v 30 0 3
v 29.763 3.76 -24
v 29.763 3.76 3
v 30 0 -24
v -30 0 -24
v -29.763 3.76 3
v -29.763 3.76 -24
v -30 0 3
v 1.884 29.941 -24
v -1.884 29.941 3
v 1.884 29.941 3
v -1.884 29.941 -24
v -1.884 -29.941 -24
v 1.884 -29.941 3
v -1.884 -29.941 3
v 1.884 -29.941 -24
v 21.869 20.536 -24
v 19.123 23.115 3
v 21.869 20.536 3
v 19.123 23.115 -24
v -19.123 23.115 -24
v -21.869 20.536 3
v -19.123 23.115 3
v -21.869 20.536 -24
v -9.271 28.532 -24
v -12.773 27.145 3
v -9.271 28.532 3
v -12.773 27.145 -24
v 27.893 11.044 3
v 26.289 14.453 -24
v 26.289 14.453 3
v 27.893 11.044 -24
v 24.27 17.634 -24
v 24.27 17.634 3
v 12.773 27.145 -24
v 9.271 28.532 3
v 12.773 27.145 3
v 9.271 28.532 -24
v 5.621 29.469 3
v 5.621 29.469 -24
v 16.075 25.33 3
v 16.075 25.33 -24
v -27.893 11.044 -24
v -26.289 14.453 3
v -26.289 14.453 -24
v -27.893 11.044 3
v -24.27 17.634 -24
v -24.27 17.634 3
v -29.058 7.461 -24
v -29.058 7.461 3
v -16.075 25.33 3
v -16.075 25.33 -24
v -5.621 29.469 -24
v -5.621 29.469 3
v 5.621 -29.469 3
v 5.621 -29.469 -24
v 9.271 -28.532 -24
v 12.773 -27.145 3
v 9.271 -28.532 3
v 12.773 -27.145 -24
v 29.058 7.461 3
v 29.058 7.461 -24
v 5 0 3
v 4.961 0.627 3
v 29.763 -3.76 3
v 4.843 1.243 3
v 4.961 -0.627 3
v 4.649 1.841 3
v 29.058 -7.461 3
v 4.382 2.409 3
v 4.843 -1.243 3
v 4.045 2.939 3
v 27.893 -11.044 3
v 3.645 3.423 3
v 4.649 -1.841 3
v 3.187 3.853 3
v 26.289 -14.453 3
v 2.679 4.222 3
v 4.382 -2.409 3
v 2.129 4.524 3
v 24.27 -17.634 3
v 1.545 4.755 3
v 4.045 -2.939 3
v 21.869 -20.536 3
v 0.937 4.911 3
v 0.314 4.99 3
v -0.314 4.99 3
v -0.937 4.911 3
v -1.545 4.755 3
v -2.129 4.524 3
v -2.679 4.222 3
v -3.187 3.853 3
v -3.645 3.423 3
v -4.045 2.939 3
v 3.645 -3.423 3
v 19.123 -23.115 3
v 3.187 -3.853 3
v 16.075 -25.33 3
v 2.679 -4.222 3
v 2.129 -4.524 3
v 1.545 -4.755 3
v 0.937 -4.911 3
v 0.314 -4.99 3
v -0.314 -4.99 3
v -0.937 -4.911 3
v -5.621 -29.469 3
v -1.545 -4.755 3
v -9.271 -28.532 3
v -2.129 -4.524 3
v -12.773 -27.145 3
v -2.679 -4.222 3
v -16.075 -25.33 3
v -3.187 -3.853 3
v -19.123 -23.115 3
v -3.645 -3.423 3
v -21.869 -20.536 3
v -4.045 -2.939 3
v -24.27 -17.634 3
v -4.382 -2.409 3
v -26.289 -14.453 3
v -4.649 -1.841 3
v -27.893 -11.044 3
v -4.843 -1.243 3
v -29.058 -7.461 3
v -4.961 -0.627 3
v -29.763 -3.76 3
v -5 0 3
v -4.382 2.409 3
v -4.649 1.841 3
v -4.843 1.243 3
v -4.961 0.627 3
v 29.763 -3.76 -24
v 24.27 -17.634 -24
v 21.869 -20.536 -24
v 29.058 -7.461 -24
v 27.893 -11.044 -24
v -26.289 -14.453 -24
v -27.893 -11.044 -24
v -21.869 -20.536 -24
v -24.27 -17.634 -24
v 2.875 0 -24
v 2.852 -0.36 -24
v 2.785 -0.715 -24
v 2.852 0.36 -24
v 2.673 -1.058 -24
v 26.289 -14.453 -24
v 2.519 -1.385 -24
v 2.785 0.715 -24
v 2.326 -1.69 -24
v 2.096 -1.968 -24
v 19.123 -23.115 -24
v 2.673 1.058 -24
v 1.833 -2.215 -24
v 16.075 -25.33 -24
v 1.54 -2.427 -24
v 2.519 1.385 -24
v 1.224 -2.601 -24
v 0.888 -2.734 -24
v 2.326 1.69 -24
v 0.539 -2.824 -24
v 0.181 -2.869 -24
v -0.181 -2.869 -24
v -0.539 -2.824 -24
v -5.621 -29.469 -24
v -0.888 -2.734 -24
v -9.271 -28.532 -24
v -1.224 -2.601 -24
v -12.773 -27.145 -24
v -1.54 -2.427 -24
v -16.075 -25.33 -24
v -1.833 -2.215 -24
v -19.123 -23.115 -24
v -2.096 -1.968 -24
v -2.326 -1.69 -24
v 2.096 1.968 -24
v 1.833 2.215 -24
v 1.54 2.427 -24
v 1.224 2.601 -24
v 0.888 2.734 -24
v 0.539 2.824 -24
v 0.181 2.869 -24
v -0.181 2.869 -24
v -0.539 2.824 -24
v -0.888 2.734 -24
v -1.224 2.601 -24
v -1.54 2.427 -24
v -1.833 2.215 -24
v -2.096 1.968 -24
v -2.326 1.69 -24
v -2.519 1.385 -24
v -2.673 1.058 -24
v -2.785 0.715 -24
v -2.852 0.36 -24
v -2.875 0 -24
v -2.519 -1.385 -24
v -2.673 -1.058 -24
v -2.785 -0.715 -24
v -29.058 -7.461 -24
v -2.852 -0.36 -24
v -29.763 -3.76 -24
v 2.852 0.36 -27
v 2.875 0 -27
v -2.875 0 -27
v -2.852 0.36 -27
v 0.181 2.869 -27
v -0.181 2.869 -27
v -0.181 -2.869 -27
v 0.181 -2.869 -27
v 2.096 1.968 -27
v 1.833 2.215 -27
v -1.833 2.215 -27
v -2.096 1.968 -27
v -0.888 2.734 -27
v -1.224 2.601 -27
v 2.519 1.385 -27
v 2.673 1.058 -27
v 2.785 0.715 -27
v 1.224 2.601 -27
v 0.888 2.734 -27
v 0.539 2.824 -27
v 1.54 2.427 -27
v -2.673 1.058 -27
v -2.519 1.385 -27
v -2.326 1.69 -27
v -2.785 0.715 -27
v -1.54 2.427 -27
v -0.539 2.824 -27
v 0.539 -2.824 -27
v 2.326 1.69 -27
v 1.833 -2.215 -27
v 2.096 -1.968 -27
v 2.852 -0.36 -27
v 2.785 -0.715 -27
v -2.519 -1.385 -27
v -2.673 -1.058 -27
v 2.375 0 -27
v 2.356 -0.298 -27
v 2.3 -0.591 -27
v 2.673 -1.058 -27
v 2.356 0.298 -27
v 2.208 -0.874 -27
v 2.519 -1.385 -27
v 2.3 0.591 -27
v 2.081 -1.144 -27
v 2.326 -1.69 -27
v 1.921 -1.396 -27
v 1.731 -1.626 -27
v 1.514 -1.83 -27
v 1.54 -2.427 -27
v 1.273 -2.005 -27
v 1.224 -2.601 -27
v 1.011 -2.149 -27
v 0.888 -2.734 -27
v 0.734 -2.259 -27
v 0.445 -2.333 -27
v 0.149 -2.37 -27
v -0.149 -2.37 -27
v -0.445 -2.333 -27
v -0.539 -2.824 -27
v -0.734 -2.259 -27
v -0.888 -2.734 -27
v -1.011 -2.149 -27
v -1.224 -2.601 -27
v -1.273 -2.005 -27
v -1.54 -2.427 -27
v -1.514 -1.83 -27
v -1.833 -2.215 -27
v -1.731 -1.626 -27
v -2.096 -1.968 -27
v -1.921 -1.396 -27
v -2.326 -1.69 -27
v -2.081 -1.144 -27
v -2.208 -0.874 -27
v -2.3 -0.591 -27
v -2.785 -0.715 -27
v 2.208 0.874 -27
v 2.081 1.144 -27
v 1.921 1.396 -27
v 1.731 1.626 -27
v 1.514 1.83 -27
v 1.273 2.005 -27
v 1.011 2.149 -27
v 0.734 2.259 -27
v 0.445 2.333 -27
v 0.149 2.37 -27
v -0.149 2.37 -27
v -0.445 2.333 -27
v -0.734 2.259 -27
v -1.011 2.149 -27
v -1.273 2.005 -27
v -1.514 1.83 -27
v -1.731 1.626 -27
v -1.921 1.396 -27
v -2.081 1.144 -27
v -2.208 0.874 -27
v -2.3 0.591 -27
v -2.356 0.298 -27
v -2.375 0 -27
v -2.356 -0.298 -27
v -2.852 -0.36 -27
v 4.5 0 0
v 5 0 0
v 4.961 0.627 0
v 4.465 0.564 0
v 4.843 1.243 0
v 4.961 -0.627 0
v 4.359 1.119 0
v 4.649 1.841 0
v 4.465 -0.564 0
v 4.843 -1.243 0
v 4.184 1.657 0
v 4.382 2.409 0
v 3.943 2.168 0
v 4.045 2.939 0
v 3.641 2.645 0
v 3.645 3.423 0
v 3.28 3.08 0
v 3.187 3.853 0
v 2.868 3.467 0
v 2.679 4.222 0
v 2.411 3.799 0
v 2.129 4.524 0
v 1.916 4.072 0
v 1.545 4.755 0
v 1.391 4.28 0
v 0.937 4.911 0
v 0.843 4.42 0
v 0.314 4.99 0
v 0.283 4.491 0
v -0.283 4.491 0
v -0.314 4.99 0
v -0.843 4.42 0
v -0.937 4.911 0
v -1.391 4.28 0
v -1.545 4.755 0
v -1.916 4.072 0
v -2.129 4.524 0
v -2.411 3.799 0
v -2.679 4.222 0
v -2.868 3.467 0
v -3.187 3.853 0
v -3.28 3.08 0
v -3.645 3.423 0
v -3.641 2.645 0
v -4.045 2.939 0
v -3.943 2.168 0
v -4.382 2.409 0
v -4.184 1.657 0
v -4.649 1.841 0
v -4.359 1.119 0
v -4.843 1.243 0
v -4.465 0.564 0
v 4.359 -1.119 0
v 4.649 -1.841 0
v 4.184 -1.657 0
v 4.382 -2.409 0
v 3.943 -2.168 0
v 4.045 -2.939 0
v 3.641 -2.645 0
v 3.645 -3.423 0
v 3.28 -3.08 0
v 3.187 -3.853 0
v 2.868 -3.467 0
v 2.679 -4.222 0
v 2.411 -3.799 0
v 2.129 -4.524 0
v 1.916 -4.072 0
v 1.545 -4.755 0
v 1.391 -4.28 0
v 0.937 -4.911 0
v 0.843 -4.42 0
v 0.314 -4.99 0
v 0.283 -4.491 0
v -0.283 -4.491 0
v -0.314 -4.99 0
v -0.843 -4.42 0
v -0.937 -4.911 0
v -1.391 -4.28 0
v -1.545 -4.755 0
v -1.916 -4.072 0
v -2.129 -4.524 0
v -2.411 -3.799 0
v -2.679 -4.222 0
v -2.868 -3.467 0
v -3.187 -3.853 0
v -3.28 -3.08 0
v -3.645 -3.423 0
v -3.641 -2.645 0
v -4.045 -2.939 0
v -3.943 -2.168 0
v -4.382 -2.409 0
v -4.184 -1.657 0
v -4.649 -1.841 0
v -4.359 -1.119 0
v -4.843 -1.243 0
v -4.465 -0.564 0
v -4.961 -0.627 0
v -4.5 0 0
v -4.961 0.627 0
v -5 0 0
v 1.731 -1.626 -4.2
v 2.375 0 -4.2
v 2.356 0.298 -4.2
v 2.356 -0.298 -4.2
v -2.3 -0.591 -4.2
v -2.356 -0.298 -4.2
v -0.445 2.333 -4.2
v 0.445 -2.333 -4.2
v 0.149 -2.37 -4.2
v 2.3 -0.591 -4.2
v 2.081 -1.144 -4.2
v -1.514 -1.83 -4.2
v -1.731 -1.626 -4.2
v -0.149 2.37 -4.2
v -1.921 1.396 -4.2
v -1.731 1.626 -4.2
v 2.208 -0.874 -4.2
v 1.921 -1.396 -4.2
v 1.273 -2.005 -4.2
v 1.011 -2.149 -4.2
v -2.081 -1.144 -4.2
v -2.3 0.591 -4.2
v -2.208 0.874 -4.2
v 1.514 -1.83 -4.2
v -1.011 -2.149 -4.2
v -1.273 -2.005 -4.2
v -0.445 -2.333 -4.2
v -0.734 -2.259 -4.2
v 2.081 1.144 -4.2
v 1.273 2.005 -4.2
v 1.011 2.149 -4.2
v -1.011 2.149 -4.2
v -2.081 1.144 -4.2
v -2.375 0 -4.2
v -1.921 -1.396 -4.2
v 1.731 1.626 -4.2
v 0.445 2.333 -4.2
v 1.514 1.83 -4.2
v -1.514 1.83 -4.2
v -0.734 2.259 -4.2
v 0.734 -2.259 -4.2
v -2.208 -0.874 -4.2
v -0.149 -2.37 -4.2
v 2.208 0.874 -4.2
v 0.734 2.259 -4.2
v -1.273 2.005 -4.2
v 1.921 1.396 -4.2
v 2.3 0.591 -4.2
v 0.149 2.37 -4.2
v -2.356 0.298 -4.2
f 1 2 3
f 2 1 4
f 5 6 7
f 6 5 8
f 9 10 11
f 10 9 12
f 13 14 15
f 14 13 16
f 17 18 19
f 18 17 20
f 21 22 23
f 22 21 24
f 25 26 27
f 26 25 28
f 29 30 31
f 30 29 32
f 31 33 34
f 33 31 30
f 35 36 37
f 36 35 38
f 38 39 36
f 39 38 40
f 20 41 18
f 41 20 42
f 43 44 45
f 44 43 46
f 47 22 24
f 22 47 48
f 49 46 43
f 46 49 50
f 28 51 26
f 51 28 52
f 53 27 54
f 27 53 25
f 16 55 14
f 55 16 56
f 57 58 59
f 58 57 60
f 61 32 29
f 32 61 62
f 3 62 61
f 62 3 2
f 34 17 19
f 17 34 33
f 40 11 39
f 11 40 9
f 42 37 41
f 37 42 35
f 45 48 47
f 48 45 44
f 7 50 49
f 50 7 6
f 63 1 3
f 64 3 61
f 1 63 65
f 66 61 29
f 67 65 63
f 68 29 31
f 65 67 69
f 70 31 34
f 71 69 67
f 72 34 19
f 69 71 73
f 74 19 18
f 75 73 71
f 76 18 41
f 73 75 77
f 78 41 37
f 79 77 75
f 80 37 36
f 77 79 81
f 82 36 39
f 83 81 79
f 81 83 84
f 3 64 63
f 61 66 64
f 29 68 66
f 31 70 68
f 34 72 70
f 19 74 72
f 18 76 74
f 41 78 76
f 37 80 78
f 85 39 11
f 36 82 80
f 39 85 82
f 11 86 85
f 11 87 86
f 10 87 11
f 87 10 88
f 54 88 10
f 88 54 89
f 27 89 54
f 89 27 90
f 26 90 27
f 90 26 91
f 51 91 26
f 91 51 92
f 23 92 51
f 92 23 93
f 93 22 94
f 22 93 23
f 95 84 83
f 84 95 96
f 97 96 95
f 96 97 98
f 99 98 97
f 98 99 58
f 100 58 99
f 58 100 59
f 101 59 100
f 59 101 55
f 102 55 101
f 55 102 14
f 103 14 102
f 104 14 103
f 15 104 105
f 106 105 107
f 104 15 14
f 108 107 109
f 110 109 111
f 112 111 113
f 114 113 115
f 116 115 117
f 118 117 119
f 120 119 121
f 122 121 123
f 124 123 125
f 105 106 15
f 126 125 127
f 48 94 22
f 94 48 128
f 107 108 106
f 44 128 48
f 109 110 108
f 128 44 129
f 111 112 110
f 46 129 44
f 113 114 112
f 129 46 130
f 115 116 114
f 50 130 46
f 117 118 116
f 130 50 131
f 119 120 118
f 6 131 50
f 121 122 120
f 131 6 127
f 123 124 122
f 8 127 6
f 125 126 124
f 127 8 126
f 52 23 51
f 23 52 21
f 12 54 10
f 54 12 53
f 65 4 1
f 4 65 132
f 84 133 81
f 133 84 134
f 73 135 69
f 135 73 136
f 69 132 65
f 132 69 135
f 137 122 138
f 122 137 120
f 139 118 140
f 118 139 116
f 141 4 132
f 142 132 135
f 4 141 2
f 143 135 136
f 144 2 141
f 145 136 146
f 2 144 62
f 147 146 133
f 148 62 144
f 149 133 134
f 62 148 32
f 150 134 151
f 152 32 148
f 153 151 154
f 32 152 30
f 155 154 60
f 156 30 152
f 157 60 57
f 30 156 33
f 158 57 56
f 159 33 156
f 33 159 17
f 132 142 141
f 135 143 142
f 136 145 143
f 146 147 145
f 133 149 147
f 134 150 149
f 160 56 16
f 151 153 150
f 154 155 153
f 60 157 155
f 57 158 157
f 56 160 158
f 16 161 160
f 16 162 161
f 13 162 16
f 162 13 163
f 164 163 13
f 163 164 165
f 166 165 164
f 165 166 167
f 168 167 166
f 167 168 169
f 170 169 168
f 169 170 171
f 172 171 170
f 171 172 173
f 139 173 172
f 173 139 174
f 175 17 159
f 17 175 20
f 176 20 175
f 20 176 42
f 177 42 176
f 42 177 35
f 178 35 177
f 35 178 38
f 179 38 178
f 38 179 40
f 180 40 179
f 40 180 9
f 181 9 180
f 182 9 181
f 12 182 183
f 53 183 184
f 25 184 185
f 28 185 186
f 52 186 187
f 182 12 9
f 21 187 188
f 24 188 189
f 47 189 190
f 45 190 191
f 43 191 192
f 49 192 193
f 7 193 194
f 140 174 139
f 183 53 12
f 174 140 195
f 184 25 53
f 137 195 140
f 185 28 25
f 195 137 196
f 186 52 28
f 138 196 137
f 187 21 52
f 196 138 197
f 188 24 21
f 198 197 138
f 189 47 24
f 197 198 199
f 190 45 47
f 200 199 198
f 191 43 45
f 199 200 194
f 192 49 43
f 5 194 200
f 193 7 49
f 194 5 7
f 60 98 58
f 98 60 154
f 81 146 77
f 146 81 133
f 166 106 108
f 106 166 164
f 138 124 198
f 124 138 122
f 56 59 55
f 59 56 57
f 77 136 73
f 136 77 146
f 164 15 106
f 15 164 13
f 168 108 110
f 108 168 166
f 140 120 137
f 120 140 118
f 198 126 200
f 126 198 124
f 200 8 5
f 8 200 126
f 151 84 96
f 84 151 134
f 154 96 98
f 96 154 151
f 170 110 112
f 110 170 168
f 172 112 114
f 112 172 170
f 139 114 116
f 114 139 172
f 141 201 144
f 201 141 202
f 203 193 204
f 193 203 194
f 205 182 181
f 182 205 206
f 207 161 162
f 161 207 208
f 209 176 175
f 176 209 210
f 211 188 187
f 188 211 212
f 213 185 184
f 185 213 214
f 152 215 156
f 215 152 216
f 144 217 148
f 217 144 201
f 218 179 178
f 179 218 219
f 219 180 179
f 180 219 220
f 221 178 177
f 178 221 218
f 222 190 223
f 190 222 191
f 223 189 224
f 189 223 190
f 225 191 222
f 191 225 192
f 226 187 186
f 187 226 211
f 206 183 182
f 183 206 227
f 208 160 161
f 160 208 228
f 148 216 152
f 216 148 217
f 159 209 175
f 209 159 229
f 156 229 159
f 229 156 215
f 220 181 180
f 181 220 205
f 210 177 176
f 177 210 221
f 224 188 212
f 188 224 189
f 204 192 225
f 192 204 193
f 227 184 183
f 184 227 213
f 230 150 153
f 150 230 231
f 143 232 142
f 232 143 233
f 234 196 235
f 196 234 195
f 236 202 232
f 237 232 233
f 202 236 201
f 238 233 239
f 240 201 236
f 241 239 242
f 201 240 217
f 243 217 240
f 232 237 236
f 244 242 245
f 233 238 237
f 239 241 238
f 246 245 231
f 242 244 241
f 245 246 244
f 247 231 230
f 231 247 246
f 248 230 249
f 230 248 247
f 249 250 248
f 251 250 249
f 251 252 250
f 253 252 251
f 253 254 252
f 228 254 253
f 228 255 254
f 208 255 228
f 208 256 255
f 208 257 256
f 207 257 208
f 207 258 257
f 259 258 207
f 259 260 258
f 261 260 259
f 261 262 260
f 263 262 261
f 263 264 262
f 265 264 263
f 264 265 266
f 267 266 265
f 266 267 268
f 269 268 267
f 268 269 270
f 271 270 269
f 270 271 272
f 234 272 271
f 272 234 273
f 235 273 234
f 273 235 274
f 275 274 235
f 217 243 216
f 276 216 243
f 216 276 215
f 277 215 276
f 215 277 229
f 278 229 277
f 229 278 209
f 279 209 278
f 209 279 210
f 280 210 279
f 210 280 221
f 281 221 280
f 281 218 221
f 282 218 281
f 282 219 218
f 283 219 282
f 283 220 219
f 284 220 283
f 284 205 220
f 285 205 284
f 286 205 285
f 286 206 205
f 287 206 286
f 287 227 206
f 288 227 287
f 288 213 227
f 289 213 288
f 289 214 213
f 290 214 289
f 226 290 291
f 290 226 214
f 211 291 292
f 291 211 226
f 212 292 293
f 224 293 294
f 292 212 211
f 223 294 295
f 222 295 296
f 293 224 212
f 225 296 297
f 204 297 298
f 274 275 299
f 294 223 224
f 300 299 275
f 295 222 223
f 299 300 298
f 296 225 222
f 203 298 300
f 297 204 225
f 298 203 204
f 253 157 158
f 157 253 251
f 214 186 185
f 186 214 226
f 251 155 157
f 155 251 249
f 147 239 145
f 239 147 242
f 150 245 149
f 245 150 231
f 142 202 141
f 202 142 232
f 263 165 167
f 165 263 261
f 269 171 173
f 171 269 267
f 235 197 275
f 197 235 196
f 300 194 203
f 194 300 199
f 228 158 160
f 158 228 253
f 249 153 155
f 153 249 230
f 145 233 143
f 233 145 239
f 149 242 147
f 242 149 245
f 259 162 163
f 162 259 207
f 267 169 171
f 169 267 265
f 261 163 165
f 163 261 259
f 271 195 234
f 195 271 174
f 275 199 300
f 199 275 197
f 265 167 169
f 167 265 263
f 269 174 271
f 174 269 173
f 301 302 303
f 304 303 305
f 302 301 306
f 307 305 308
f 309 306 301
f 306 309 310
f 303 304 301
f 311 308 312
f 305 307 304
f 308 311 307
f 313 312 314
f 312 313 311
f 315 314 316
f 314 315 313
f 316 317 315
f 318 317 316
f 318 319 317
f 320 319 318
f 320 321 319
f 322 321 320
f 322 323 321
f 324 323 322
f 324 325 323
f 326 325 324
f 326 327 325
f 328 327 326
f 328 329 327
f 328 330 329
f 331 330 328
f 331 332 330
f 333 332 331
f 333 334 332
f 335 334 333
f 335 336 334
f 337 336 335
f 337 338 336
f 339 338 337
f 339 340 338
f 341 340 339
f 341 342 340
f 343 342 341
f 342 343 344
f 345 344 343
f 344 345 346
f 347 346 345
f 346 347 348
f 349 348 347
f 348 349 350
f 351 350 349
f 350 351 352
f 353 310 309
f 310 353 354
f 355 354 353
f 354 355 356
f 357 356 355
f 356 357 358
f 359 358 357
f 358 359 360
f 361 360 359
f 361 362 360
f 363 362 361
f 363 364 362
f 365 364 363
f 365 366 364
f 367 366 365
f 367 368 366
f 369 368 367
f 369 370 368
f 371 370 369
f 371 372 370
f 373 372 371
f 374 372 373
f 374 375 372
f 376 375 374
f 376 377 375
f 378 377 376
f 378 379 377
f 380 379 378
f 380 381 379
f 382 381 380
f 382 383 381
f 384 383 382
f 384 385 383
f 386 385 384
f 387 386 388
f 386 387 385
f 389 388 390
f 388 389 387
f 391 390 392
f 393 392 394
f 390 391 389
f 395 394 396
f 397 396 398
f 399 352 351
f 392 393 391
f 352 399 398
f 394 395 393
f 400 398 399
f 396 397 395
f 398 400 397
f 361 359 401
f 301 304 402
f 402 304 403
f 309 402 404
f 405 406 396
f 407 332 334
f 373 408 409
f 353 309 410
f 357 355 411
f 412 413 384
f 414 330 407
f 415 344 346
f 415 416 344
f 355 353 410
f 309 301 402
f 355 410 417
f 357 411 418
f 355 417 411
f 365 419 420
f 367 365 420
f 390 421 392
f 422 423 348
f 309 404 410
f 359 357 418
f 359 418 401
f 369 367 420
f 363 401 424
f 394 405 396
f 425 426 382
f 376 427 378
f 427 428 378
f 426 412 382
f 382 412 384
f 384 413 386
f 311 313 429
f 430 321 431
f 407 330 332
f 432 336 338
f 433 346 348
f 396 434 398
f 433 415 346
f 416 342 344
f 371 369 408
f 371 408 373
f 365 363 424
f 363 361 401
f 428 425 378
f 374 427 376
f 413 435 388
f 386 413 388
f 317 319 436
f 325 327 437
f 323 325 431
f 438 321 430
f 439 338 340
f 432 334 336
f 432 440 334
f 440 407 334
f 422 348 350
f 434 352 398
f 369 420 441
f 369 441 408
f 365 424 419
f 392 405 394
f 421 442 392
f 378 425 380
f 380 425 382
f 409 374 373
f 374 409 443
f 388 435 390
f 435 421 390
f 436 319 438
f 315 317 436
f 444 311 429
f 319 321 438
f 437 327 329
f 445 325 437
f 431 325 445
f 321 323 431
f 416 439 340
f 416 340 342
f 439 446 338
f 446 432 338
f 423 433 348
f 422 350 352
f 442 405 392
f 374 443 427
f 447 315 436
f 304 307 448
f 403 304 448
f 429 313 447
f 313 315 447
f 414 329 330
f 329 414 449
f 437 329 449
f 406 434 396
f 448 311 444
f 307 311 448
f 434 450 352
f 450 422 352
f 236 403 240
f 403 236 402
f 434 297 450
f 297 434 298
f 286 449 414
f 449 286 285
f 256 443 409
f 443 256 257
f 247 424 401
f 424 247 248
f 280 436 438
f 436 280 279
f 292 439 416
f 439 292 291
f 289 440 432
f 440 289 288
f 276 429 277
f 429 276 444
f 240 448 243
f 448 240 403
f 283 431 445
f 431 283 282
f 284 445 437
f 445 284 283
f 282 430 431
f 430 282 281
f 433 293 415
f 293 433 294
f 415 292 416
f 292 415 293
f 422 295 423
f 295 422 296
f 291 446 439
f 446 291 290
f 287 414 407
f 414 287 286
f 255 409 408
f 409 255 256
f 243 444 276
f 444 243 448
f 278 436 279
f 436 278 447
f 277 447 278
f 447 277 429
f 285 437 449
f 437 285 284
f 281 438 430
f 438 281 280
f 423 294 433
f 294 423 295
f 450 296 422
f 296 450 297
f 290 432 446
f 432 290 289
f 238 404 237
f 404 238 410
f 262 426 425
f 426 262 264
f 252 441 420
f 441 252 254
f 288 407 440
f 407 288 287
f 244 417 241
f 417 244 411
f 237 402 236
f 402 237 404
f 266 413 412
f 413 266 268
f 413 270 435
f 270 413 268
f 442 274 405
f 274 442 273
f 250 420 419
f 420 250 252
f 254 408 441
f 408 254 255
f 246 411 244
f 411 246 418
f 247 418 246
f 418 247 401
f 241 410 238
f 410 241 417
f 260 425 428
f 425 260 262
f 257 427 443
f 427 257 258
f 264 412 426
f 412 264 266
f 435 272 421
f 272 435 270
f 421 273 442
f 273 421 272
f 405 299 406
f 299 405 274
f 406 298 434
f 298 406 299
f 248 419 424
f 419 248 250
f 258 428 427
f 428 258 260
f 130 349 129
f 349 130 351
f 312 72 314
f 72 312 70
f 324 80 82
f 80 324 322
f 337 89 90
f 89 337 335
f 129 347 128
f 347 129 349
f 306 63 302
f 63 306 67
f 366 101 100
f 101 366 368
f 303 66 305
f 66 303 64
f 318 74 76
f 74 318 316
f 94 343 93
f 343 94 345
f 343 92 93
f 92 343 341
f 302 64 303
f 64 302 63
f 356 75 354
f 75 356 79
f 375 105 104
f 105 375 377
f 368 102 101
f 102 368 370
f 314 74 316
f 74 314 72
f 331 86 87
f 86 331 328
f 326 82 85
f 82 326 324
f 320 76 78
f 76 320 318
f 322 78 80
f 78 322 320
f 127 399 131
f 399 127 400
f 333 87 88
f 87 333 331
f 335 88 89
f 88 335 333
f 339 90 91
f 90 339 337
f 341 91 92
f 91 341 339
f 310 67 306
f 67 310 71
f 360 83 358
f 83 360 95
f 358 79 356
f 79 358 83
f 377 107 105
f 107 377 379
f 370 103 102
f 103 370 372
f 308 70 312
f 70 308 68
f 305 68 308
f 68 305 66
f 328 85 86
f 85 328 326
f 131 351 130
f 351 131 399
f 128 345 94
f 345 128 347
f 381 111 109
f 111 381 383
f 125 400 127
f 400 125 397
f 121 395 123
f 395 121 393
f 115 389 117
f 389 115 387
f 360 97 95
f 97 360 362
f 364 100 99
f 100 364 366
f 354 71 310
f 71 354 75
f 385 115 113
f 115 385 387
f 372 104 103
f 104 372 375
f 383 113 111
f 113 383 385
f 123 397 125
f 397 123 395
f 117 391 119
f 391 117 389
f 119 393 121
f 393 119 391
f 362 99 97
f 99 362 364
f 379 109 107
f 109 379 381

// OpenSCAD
$fn = 50;

difference() {
	union() {
		translate(v = [0, 0, -24.0]) {
			cylinder(h = 27, r = 30.0);
		}
		#translate(v = [0, 0, -27.0]) {
			cylinder(h = 27, r = 2.875);
		}
	}
	union() {
		translate(v = [0, 0, 0]) {
			rotate(a = [0, 0, 0]) {
				difference() {
					union() {
						translate(v = [0, 0, -27.0]) {
							cylinder(h = 27, r = 2.25);
						}
						translate(v = [0, 0, -4.2]) {
							cylinder(h = 4.2, r1 = 2.375, r2 = 4.5);
						}
						translate(v = [0, 0, -27.0]) {
							cylinder(h = 27, r = 2.375);
						}
						translate(v = [0, 0, -27.0]) {
							cylinder(h = 27, r = 2.25);
						}
					}
					union();
				}
			}
		}
		#cylinder(h = 3, r = 5.0);
	}
}
